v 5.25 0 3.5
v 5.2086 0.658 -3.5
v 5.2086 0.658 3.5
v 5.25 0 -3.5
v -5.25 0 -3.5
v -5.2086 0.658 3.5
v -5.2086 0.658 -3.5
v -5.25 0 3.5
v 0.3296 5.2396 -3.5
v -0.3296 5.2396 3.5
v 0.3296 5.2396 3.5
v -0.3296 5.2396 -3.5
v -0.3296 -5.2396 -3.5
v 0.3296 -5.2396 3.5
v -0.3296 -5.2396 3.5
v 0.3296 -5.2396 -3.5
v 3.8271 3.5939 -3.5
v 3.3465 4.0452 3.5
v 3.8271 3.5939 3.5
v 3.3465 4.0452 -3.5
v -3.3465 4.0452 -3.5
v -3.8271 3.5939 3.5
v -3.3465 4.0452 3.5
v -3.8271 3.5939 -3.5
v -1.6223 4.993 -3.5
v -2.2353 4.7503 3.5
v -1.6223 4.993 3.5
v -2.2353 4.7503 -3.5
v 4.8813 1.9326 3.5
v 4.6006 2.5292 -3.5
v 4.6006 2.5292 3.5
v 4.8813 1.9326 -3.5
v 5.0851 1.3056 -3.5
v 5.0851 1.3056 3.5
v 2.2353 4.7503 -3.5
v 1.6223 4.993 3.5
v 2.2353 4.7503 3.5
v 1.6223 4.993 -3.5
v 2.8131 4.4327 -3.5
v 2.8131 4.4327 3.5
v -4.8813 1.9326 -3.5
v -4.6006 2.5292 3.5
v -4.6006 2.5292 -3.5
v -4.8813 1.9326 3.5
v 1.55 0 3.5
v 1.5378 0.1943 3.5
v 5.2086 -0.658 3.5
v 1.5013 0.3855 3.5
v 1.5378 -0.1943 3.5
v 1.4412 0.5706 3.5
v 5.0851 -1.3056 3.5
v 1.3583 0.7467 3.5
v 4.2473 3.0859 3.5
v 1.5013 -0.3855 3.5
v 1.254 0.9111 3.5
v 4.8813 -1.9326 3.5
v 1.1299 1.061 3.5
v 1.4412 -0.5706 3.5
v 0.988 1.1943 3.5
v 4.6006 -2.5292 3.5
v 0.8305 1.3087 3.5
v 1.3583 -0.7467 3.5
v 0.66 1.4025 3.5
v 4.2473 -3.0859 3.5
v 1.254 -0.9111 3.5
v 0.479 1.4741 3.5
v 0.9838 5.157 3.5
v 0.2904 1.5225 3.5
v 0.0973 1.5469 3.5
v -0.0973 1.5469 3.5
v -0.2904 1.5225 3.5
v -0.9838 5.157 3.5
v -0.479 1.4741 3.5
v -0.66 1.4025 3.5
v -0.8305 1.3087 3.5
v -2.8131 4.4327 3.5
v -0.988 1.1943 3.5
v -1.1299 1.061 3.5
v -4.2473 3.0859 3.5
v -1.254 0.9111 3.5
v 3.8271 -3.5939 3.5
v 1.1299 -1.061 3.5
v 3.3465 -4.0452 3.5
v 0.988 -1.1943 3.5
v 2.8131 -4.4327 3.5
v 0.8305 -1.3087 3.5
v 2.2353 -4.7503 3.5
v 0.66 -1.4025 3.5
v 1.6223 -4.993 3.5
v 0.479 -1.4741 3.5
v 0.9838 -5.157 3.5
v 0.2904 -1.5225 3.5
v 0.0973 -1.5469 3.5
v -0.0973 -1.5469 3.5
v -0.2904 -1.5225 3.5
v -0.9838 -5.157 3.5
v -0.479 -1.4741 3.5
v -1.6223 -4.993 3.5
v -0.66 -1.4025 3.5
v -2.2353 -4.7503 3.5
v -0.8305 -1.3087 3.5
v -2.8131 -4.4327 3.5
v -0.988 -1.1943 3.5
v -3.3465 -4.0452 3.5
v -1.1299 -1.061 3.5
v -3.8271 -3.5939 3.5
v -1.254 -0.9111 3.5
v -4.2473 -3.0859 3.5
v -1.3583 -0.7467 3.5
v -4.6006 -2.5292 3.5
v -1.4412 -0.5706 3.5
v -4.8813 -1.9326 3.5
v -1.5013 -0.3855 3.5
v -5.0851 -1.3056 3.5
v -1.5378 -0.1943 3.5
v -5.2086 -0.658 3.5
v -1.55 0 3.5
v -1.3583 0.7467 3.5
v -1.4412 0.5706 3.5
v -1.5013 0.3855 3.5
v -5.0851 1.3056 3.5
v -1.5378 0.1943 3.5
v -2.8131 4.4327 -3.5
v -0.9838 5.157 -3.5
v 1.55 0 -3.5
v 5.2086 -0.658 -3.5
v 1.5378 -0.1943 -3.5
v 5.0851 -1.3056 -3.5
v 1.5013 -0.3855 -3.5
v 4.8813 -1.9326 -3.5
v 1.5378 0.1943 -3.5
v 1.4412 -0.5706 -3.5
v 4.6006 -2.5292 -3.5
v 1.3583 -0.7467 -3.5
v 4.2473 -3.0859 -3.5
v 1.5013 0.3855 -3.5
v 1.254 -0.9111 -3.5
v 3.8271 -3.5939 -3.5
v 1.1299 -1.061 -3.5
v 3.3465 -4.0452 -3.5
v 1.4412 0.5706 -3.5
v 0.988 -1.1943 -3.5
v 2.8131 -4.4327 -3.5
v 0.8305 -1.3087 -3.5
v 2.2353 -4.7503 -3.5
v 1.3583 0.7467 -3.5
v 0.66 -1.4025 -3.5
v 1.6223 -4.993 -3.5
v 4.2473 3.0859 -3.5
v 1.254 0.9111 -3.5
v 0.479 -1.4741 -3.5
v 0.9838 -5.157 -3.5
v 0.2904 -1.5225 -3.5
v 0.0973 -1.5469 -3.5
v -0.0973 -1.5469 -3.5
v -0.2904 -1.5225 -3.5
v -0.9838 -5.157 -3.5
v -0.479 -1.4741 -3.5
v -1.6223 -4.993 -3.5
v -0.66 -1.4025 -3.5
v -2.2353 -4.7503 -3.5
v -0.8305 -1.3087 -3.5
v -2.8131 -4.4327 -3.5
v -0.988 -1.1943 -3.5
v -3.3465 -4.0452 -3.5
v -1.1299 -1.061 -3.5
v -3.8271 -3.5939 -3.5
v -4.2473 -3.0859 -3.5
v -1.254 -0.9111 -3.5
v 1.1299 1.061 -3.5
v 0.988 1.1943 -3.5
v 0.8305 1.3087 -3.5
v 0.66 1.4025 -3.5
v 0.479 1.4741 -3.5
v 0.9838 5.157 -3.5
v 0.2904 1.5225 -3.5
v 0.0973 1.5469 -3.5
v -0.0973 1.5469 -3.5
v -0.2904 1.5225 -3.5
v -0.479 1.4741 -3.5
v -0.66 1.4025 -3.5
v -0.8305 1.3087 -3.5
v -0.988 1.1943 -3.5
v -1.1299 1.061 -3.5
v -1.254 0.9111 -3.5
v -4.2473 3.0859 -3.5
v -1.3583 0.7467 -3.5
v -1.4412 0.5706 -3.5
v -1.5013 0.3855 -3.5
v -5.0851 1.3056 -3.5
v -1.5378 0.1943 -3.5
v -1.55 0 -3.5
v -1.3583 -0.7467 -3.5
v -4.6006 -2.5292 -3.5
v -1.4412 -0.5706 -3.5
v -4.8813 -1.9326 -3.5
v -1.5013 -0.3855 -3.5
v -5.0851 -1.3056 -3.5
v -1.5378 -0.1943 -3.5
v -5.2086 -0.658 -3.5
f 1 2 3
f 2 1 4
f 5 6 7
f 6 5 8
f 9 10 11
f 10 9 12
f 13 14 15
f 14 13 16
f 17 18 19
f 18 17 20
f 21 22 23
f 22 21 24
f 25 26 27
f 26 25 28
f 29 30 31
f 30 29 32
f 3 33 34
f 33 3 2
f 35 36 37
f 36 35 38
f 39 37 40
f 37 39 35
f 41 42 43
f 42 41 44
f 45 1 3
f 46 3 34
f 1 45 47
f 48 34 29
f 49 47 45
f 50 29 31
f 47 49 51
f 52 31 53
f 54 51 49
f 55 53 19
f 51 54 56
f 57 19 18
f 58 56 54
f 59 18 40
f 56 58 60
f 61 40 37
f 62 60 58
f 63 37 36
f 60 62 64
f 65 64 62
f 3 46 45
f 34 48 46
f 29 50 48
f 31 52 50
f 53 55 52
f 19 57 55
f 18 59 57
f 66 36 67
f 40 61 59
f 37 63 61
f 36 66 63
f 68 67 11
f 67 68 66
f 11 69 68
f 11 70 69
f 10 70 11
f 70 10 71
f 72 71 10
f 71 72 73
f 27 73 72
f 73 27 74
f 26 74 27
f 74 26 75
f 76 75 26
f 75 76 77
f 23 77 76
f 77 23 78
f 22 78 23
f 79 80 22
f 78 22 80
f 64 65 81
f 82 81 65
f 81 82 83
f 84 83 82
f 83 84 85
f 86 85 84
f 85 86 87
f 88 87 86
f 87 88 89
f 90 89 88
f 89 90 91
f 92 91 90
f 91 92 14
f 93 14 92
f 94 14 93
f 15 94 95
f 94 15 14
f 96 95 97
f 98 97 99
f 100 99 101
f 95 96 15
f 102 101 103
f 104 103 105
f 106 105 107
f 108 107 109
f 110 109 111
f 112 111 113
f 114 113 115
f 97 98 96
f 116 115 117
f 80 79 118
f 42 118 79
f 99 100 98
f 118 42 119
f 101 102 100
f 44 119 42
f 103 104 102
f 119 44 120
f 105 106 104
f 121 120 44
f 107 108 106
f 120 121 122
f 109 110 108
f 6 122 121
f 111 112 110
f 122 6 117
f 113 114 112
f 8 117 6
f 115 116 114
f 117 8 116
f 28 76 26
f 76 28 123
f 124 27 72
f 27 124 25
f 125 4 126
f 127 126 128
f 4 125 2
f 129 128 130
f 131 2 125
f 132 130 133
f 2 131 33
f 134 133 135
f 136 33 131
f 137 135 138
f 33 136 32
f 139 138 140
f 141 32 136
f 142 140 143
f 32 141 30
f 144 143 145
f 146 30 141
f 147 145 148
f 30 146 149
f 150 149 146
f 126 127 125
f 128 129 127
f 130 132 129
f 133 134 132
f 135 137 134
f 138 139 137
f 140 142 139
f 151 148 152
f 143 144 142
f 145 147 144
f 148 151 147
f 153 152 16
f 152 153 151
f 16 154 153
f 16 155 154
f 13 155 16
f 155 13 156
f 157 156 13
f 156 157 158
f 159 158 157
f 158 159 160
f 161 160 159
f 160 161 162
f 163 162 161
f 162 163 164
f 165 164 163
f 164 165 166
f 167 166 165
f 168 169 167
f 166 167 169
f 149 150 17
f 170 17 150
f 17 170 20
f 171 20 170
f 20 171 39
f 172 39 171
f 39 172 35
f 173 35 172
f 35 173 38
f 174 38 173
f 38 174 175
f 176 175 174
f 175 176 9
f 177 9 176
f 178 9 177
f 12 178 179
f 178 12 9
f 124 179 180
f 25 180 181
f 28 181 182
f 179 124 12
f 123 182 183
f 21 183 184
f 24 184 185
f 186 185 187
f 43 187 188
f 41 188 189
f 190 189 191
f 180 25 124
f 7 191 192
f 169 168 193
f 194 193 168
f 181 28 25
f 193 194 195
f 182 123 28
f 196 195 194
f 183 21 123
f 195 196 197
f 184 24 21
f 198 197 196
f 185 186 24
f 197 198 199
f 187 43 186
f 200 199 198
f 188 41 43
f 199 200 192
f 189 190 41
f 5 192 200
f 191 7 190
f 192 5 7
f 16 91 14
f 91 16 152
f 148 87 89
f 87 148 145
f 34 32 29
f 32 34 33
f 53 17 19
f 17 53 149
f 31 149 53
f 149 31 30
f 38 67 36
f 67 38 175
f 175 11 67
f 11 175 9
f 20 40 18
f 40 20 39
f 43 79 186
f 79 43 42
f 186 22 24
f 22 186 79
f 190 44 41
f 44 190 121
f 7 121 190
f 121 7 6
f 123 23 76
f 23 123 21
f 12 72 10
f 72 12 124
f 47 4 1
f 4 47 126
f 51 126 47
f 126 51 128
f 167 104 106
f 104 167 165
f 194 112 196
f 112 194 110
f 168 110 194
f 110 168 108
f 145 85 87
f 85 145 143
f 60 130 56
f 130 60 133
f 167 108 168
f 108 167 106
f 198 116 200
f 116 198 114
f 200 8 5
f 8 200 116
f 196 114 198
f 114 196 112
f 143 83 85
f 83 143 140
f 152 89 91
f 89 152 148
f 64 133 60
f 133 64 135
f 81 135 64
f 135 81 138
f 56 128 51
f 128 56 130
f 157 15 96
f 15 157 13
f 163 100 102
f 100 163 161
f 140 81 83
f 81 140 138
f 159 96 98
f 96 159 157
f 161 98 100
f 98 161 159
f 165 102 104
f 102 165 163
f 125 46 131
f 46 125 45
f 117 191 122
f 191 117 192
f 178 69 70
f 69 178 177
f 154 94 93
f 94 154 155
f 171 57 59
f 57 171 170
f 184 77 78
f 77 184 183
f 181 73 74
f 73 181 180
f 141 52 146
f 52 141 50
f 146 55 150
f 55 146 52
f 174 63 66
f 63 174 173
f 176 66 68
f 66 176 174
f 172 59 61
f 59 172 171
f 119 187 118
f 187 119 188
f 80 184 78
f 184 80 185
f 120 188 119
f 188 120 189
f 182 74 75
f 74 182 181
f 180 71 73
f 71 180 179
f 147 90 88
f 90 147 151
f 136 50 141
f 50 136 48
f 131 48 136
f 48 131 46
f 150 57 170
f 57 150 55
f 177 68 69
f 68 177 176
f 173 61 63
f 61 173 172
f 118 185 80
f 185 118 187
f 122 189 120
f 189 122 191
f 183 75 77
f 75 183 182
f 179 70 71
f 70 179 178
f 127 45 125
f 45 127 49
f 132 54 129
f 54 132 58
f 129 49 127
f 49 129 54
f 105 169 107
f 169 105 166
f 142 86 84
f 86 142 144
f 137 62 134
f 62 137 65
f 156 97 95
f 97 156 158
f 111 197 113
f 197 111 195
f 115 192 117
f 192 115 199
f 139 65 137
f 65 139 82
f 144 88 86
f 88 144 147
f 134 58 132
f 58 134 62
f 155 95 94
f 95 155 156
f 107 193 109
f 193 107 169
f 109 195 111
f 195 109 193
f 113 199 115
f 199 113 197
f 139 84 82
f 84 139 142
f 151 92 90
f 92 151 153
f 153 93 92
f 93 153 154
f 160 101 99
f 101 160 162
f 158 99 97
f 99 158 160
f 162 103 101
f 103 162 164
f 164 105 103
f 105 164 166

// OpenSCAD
$fn = 50;


difference() {
	union() {
		translate(v = [0, 0, -3.5000000000]) {
			cylinder(h = 7, r = 5.2500000000);
		}
	}
	union() {
		translate(v = [0, 0, -100.0000000000]) {
			cylinder(h = 200, r = 1.5500000000);
		}
	}
}
